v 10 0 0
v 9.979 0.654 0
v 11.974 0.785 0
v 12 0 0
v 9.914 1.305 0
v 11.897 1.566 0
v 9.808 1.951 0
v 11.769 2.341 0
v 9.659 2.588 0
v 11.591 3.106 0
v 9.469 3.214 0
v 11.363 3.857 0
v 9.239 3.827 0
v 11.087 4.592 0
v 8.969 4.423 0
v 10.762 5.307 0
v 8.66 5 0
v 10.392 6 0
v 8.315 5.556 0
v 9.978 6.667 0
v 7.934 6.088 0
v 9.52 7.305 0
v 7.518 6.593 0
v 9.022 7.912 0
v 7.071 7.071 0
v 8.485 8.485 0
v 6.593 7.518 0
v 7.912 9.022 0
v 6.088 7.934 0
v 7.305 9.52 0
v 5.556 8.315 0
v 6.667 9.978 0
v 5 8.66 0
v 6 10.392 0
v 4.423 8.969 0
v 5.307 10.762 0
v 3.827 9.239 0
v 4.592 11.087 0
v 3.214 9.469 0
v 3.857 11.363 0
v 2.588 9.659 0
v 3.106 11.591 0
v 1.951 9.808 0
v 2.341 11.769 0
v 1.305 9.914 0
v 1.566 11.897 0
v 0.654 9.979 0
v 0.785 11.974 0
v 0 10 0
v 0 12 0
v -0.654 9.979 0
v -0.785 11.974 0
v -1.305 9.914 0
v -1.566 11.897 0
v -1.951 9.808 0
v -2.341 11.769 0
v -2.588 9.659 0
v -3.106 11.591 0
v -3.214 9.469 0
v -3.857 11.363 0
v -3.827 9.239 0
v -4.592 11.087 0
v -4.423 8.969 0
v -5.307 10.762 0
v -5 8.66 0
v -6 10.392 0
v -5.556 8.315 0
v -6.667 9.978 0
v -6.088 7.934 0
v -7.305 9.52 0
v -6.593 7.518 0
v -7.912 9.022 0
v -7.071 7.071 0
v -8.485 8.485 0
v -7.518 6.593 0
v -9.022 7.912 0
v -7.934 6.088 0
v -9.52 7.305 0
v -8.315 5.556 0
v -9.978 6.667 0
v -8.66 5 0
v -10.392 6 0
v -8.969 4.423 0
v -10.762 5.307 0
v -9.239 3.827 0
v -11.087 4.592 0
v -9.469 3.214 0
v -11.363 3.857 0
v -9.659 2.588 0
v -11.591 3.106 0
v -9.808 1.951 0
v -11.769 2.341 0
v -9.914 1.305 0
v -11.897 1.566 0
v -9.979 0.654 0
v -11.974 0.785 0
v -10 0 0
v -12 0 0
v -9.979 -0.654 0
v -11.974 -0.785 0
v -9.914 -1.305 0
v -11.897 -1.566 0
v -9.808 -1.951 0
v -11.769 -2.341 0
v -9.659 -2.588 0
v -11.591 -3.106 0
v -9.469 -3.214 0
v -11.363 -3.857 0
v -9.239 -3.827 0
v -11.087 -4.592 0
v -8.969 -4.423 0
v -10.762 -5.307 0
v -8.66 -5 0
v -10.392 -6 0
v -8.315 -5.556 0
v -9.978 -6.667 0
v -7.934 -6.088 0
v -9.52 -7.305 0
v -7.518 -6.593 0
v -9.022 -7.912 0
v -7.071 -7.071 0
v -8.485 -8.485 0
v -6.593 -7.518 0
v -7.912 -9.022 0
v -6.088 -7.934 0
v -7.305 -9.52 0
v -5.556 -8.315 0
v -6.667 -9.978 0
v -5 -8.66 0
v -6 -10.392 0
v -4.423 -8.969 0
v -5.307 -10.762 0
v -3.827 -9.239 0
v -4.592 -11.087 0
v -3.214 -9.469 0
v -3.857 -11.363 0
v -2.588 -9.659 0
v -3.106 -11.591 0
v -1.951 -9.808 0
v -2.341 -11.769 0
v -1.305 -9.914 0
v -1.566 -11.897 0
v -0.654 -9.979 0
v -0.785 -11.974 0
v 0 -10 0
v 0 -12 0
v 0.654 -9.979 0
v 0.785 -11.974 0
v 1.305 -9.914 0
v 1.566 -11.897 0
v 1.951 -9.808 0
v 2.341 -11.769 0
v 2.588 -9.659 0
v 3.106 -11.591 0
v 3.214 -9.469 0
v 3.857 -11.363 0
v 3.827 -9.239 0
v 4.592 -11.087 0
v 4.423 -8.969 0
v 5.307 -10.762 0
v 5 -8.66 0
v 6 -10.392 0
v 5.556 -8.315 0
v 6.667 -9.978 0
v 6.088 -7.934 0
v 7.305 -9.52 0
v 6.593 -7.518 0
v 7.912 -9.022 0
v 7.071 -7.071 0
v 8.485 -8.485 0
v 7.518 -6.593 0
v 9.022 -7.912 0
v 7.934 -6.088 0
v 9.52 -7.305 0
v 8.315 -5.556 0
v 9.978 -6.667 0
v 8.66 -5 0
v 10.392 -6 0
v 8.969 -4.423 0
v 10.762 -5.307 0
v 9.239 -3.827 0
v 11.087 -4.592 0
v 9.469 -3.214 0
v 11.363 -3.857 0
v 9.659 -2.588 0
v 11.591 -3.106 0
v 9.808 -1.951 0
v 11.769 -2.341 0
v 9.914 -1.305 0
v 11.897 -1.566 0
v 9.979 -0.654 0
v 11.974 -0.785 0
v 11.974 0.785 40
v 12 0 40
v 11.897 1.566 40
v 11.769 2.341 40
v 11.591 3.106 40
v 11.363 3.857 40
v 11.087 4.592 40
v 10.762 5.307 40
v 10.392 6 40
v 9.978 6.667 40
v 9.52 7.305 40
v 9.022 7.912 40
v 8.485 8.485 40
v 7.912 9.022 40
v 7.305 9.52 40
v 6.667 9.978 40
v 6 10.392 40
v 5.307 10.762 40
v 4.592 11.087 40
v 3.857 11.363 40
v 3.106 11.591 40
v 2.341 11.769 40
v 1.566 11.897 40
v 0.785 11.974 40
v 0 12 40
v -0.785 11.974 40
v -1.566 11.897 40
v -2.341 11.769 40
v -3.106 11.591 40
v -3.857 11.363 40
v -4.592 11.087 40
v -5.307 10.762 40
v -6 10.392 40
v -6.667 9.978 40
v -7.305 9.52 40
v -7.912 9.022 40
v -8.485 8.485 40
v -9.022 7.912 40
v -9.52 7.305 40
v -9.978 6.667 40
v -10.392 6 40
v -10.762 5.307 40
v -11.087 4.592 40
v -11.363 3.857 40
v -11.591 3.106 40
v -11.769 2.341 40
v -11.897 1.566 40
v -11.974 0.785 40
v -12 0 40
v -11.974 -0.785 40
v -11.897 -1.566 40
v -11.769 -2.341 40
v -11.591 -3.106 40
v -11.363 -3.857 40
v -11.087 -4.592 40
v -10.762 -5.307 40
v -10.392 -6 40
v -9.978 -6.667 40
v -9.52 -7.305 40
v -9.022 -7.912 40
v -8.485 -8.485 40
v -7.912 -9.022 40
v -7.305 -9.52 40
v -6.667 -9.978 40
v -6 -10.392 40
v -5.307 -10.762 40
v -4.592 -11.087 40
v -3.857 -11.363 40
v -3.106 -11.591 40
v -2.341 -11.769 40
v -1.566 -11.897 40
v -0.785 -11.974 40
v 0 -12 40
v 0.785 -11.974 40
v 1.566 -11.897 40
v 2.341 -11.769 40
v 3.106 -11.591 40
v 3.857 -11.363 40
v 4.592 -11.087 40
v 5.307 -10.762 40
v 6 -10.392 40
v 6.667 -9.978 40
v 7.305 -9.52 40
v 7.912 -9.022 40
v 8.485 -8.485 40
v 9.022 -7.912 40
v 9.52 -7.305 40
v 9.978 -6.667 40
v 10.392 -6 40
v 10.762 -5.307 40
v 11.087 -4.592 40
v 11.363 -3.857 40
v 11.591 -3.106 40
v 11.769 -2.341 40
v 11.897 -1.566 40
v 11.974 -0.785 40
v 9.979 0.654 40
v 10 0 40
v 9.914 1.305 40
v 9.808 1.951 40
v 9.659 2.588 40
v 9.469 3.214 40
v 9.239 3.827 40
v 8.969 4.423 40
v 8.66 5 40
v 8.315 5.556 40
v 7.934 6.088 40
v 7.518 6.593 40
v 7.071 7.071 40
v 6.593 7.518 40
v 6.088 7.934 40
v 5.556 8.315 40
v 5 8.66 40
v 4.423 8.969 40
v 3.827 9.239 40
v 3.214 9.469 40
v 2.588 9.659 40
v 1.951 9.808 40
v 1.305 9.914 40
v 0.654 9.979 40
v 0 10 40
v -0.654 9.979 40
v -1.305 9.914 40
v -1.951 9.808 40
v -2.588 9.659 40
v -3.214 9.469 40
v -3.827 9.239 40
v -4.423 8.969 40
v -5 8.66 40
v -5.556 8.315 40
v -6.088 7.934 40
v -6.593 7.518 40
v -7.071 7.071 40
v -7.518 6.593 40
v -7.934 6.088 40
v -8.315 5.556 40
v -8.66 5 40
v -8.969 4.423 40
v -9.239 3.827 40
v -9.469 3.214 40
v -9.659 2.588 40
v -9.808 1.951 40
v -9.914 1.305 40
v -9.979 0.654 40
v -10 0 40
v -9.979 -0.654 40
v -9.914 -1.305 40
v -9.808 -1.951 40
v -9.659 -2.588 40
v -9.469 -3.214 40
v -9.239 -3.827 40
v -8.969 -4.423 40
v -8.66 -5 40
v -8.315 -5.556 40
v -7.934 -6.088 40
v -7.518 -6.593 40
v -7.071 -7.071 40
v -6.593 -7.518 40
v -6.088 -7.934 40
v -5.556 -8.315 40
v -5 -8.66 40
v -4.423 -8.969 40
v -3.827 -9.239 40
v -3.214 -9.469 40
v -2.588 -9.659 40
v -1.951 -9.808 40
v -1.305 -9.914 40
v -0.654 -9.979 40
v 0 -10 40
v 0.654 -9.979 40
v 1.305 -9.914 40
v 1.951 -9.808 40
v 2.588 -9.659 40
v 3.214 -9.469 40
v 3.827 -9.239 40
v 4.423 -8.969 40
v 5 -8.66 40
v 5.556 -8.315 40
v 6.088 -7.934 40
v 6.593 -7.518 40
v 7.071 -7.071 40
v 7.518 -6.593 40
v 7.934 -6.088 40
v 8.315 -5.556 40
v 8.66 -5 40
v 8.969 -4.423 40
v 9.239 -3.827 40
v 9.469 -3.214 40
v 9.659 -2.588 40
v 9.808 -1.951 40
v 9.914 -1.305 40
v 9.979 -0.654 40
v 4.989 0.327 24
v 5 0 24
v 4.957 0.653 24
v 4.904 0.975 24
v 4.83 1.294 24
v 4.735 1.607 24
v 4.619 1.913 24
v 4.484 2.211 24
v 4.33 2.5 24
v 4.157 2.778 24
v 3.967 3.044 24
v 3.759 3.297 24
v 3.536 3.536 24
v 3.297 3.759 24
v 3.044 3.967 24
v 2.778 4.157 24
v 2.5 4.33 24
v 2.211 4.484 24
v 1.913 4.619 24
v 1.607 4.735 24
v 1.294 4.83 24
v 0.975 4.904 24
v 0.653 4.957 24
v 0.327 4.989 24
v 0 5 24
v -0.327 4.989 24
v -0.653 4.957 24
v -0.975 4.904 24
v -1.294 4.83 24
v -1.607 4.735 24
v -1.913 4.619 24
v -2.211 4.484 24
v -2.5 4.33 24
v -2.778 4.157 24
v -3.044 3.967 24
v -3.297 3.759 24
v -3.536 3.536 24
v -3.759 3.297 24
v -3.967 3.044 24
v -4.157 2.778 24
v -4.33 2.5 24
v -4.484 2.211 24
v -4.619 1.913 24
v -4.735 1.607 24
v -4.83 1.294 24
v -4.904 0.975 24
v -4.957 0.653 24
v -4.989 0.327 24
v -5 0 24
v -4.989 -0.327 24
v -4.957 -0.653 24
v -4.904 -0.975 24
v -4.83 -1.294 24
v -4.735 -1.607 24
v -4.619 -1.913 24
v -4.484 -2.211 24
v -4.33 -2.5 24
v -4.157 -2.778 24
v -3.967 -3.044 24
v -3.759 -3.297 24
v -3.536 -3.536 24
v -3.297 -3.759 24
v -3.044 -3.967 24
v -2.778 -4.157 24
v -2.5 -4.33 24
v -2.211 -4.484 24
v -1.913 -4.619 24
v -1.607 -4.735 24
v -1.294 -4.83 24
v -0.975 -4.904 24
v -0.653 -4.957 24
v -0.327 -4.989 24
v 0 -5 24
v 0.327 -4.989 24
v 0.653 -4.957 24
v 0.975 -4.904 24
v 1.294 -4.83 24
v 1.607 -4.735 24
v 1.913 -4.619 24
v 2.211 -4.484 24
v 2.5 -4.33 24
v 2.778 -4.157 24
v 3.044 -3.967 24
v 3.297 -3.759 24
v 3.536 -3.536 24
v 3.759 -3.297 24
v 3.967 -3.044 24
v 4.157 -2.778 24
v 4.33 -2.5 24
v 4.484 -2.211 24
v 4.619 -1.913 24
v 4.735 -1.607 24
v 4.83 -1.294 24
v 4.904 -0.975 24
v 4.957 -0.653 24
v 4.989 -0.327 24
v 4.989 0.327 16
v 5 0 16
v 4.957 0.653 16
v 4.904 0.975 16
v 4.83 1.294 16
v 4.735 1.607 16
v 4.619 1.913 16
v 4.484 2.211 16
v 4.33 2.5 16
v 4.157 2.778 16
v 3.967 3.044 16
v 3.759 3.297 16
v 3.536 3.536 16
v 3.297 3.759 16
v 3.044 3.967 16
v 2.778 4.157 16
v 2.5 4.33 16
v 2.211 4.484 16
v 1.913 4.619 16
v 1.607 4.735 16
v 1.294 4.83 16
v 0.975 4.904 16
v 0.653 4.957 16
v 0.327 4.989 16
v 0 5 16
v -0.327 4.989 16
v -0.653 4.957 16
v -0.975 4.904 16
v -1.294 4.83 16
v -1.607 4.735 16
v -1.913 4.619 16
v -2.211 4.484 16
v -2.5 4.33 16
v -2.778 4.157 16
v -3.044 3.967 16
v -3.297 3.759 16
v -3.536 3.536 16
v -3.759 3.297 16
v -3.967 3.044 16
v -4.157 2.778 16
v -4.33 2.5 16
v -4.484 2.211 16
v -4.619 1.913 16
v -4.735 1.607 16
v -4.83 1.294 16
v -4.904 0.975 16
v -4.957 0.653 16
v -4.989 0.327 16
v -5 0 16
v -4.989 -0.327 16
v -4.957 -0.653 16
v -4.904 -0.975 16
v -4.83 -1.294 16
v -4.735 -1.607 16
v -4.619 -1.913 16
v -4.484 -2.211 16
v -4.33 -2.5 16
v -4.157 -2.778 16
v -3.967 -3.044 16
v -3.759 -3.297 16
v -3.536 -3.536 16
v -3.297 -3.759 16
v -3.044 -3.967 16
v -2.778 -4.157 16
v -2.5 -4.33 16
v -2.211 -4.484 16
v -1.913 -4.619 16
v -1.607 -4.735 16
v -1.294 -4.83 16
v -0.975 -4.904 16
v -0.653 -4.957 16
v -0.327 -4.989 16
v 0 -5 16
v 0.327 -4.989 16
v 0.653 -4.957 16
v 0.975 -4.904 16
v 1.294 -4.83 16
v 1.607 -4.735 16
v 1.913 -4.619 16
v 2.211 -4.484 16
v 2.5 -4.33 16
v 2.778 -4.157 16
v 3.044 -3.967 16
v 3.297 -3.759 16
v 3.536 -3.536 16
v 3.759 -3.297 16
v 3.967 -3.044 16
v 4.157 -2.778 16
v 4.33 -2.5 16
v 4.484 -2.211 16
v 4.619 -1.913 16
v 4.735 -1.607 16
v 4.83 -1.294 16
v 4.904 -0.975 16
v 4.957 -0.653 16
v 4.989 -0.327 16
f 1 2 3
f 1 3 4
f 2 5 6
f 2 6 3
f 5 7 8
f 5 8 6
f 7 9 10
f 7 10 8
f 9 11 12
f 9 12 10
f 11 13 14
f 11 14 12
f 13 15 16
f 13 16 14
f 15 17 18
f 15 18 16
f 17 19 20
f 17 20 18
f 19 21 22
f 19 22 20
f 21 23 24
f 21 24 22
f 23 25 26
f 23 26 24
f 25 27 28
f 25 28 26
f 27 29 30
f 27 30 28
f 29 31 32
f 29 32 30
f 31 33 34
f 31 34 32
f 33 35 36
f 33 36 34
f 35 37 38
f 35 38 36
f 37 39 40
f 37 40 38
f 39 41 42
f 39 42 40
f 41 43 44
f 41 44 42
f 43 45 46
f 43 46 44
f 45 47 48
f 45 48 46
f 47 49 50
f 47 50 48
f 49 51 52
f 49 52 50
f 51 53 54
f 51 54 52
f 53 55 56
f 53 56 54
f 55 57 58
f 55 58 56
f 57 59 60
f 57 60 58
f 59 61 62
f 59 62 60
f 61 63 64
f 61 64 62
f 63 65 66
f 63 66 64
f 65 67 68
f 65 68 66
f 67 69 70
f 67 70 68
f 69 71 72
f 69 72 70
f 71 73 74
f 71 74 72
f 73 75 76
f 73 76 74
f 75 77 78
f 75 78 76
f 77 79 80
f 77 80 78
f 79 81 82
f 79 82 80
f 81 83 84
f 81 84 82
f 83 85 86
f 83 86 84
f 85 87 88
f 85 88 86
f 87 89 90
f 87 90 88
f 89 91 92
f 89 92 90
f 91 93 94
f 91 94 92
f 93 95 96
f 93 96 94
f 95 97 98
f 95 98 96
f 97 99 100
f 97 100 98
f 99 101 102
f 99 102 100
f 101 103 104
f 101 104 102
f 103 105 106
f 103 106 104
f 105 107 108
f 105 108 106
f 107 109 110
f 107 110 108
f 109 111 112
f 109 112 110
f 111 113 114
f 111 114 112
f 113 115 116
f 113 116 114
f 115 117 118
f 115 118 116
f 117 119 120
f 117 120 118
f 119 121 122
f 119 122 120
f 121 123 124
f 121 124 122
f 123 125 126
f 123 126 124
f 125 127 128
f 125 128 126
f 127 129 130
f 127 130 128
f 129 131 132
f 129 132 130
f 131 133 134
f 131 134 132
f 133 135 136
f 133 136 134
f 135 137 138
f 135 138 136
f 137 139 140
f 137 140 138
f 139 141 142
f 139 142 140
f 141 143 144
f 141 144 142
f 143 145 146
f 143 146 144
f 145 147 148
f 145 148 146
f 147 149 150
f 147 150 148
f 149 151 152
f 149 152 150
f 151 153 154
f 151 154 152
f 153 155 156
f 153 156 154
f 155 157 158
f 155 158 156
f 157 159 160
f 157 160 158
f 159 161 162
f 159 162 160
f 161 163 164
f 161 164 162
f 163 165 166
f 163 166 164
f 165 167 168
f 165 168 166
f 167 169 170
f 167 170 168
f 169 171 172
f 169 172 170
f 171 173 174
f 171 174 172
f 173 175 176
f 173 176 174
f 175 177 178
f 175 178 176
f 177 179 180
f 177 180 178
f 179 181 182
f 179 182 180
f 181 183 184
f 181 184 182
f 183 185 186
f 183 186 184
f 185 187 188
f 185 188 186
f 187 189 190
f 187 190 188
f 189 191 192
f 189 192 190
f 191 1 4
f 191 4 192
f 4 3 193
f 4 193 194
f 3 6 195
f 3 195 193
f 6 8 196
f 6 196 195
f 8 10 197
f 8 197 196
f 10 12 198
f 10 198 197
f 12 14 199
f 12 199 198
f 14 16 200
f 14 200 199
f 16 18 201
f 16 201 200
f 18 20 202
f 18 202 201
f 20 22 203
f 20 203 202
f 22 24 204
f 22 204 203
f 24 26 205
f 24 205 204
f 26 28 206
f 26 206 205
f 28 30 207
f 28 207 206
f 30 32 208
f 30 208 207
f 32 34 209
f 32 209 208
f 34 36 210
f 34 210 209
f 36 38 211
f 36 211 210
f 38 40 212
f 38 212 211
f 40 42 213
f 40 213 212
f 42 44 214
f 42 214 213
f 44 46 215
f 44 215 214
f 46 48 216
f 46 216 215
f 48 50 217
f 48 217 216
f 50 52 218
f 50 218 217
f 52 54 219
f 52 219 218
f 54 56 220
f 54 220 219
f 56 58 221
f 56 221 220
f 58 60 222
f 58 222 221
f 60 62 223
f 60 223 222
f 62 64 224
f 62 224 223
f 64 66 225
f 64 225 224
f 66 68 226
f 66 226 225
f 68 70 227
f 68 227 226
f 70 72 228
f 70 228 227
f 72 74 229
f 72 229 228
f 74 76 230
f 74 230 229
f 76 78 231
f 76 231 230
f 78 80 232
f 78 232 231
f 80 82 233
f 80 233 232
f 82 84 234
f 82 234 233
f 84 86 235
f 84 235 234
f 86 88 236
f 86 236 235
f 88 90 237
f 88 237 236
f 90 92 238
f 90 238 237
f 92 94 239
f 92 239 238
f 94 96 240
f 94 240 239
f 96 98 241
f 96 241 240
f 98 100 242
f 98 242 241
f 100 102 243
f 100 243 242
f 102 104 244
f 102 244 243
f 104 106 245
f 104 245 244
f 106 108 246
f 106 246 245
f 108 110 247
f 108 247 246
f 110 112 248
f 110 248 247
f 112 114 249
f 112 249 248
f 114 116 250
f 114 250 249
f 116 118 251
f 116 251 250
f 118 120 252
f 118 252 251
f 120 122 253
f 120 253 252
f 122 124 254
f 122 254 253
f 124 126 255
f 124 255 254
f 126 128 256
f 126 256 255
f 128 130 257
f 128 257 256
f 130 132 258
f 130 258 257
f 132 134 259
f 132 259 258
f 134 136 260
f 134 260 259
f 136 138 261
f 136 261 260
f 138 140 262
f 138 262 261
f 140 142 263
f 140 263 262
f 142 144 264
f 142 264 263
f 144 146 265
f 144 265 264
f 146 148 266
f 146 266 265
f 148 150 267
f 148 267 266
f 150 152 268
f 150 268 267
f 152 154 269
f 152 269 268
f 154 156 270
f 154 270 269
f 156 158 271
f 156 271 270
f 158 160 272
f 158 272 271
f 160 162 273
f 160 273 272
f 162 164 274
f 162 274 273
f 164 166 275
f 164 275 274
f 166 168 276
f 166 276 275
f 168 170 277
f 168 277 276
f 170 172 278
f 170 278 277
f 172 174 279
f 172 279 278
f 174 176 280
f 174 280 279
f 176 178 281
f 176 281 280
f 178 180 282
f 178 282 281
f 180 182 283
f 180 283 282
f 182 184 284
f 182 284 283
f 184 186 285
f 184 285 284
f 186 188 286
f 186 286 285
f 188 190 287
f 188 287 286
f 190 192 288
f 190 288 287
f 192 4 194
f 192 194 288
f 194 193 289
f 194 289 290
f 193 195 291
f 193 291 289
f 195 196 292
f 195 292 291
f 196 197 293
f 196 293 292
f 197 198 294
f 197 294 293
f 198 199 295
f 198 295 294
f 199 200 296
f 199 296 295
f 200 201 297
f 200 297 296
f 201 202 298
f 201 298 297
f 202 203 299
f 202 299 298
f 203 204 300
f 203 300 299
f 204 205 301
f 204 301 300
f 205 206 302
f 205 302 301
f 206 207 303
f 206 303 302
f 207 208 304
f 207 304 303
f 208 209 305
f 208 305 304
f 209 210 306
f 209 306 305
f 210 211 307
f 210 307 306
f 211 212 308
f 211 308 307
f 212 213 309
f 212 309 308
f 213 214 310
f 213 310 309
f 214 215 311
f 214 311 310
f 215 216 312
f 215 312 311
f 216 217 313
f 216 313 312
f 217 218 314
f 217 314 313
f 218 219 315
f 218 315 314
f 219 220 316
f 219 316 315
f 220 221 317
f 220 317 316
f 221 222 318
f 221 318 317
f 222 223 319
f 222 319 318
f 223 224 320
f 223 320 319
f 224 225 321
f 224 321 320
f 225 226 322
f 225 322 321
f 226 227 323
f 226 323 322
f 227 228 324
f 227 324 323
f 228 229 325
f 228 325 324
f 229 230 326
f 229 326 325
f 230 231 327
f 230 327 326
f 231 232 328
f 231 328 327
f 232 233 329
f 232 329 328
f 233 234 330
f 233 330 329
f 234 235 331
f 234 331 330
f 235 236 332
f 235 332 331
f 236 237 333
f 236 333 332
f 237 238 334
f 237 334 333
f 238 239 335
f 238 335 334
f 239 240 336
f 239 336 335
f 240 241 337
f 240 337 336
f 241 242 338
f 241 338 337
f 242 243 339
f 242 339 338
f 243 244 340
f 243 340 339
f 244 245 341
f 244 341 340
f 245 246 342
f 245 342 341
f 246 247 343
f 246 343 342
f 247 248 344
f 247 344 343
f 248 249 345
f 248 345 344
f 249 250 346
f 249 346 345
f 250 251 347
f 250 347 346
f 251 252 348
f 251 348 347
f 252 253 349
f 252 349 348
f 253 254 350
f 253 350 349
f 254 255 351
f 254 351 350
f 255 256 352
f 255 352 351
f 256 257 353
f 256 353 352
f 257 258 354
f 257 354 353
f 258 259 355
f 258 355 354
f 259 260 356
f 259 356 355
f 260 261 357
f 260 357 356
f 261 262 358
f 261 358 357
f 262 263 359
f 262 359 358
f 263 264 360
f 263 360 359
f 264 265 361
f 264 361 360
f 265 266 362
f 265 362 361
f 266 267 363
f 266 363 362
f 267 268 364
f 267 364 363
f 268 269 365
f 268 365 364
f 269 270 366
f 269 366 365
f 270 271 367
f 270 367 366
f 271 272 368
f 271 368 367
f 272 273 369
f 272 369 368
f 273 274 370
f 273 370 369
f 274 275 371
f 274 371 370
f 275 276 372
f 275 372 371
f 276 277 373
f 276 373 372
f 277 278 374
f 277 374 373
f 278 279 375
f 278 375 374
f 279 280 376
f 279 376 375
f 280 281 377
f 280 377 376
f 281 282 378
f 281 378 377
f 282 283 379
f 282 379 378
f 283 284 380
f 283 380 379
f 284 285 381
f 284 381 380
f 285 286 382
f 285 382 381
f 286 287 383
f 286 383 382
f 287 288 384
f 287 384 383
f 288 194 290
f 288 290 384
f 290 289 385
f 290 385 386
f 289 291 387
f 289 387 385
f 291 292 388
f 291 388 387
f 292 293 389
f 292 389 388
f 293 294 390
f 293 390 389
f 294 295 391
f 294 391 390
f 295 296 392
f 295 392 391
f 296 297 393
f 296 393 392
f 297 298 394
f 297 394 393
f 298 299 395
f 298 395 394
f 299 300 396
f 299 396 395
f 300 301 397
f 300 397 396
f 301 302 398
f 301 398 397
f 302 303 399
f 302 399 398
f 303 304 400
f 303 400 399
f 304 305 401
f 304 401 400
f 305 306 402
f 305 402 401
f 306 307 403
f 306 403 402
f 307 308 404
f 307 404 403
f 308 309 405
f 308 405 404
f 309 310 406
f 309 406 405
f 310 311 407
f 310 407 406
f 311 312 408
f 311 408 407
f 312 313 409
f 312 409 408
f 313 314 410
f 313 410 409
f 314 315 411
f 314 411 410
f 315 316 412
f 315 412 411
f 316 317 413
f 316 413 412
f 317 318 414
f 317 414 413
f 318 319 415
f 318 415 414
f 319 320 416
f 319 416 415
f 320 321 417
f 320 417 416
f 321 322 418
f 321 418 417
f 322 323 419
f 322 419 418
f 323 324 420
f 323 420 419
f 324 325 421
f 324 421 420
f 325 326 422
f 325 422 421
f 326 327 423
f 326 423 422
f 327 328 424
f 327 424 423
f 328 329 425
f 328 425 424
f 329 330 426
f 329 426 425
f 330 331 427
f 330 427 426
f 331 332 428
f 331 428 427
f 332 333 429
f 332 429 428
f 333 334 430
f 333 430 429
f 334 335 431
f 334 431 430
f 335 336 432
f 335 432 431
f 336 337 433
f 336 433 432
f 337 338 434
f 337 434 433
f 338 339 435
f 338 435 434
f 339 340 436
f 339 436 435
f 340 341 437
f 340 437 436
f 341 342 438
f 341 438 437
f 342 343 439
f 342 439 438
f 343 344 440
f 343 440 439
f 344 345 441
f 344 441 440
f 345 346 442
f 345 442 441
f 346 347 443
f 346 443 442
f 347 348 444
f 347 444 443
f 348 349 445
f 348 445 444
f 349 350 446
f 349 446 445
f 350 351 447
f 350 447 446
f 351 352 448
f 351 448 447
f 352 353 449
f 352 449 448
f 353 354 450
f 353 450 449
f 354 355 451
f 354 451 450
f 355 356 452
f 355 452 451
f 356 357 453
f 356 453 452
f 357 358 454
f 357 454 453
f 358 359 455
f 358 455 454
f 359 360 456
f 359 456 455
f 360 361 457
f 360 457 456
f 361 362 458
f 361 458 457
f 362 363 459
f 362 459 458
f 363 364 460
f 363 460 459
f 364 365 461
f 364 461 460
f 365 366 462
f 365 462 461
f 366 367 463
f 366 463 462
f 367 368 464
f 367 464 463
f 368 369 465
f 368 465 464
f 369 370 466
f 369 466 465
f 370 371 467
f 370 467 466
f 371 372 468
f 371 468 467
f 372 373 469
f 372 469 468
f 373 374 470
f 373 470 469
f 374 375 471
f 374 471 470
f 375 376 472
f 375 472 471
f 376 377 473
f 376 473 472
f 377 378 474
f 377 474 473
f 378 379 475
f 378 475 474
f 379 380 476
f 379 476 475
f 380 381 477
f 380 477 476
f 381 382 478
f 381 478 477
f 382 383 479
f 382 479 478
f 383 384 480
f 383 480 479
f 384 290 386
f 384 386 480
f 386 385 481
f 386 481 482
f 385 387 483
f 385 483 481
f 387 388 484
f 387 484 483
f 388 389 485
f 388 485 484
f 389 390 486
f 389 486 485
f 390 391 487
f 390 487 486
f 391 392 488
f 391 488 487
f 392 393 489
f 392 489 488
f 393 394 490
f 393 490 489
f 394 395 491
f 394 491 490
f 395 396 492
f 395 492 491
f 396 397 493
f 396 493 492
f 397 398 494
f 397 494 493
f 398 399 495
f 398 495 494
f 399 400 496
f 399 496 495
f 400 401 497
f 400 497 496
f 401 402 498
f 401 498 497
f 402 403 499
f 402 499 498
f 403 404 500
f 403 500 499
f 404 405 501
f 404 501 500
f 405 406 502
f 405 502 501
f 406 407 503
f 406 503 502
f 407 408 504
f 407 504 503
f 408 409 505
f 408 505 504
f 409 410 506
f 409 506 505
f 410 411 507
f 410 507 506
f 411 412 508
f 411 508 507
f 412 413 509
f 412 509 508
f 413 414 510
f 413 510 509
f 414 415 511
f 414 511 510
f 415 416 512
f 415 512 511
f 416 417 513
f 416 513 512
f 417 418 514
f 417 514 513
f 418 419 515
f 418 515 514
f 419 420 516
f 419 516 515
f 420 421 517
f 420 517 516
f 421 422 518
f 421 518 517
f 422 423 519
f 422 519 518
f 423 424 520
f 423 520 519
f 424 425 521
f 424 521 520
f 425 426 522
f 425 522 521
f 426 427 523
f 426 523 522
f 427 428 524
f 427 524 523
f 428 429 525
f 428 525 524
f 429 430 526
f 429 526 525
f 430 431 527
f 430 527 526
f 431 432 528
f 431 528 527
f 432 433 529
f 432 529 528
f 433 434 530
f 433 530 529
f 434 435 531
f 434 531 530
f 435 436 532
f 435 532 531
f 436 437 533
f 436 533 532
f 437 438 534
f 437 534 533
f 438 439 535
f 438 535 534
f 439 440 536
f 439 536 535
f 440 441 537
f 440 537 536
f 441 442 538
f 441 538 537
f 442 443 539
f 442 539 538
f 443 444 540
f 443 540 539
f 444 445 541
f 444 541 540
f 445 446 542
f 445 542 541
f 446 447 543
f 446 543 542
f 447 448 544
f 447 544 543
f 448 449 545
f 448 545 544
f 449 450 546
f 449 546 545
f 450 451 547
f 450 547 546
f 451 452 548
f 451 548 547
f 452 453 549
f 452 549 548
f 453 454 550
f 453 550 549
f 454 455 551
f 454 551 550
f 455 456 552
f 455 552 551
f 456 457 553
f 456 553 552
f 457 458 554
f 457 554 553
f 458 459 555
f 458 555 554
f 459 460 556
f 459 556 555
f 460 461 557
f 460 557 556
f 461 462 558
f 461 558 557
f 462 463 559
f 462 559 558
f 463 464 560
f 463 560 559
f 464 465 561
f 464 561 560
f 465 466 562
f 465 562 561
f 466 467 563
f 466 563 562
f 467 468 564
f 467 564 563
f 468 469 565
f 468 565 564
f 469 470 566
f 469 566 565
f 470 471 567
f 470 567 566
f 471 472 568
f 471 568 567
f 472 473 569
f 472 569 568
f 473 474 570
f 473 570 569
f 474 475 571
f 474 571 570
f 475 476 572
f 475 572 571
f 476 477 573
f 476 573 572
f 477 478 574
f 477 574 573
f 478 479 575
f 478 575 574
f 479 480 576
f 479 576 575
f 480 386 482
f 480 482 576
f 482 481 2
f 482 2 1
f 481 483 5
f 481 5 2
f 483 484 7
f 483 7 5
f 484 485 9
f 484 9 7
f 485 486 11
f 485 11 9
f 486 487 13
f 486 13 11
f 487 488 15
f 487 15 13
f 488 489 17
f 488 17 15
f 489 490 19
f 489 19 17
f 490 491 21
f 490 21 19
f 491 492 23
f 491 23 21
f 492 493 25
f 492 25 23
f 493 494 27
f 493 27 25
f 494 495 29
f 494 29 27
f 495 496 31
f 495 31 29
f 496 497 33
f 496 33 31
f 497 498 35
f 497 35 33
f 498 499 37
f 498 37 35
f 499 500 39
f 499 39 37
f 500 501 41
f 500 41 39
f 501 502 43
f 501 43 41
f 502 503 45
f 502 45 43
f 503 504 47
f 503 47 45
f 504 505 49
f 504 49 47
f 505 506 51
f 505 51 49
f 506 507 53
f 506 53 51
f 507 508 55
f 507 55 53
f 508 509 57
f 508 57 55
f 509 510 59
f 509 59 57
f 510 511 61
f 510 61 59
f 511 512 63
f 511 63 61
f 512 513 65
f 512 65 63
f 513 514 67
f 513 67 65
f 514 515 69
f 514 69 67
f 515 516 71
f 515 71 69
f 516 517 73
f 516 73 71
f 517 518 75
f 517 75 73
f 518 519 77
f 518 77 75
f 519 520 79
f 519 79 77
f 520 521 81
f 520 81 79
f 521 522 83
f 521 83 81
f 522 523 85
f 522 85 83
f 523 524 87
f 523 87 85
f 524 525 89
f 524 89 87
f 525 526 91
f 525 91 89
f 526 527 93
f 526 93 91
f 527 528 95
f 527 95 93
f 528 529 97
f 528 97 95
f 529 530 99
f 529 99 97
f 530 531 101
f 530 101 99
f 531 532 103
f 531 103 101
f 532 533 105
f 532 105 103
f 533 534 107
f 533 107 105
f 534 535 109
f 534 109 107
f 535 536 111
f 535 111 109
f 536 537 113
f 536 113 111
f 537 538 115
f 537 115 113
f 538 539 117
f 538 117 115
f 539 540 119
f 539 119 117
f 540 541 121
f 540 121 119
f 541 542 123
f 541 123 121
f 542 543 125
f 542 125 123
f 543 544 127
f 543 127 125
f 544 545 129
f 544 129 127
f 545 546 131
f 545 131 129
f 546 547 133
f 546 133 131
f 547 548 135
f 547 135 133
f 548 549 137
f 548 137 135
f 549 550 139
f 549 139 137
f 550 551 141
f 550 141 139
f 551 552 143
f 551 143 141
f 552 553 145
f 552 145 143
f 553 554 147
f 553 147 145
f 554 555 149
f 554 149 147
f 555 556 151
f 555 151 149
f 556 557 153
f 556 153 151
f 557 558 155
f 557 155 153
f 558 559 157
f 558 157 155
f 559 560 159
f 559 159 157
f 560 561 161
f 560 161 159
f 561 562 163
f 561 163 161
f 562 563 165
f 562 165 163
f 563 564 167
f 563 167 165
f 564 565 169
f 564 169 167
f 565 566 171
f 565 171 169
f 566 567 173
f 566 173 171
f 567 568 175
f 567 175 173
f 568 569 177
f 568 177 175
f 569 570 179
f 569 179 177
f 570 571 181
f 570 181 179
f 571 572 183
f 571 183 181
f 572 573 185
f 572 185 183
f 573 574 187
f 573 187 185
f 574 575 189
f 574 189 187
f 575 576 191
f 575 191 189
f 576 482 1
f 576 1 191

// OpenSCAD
// Original MechIntel educational model. CC0-1.0. Units: mm.
// Not a standardized or load-rated component.
$fn=96;
// Section points: [radius, height], mm. Edit to change the profile.
section=[[10, 0], [12, 0], [12, 40], [10, 40], [5, 24], [5, 16]];
rotate_extrude($fn=96) polygon(points=section);
